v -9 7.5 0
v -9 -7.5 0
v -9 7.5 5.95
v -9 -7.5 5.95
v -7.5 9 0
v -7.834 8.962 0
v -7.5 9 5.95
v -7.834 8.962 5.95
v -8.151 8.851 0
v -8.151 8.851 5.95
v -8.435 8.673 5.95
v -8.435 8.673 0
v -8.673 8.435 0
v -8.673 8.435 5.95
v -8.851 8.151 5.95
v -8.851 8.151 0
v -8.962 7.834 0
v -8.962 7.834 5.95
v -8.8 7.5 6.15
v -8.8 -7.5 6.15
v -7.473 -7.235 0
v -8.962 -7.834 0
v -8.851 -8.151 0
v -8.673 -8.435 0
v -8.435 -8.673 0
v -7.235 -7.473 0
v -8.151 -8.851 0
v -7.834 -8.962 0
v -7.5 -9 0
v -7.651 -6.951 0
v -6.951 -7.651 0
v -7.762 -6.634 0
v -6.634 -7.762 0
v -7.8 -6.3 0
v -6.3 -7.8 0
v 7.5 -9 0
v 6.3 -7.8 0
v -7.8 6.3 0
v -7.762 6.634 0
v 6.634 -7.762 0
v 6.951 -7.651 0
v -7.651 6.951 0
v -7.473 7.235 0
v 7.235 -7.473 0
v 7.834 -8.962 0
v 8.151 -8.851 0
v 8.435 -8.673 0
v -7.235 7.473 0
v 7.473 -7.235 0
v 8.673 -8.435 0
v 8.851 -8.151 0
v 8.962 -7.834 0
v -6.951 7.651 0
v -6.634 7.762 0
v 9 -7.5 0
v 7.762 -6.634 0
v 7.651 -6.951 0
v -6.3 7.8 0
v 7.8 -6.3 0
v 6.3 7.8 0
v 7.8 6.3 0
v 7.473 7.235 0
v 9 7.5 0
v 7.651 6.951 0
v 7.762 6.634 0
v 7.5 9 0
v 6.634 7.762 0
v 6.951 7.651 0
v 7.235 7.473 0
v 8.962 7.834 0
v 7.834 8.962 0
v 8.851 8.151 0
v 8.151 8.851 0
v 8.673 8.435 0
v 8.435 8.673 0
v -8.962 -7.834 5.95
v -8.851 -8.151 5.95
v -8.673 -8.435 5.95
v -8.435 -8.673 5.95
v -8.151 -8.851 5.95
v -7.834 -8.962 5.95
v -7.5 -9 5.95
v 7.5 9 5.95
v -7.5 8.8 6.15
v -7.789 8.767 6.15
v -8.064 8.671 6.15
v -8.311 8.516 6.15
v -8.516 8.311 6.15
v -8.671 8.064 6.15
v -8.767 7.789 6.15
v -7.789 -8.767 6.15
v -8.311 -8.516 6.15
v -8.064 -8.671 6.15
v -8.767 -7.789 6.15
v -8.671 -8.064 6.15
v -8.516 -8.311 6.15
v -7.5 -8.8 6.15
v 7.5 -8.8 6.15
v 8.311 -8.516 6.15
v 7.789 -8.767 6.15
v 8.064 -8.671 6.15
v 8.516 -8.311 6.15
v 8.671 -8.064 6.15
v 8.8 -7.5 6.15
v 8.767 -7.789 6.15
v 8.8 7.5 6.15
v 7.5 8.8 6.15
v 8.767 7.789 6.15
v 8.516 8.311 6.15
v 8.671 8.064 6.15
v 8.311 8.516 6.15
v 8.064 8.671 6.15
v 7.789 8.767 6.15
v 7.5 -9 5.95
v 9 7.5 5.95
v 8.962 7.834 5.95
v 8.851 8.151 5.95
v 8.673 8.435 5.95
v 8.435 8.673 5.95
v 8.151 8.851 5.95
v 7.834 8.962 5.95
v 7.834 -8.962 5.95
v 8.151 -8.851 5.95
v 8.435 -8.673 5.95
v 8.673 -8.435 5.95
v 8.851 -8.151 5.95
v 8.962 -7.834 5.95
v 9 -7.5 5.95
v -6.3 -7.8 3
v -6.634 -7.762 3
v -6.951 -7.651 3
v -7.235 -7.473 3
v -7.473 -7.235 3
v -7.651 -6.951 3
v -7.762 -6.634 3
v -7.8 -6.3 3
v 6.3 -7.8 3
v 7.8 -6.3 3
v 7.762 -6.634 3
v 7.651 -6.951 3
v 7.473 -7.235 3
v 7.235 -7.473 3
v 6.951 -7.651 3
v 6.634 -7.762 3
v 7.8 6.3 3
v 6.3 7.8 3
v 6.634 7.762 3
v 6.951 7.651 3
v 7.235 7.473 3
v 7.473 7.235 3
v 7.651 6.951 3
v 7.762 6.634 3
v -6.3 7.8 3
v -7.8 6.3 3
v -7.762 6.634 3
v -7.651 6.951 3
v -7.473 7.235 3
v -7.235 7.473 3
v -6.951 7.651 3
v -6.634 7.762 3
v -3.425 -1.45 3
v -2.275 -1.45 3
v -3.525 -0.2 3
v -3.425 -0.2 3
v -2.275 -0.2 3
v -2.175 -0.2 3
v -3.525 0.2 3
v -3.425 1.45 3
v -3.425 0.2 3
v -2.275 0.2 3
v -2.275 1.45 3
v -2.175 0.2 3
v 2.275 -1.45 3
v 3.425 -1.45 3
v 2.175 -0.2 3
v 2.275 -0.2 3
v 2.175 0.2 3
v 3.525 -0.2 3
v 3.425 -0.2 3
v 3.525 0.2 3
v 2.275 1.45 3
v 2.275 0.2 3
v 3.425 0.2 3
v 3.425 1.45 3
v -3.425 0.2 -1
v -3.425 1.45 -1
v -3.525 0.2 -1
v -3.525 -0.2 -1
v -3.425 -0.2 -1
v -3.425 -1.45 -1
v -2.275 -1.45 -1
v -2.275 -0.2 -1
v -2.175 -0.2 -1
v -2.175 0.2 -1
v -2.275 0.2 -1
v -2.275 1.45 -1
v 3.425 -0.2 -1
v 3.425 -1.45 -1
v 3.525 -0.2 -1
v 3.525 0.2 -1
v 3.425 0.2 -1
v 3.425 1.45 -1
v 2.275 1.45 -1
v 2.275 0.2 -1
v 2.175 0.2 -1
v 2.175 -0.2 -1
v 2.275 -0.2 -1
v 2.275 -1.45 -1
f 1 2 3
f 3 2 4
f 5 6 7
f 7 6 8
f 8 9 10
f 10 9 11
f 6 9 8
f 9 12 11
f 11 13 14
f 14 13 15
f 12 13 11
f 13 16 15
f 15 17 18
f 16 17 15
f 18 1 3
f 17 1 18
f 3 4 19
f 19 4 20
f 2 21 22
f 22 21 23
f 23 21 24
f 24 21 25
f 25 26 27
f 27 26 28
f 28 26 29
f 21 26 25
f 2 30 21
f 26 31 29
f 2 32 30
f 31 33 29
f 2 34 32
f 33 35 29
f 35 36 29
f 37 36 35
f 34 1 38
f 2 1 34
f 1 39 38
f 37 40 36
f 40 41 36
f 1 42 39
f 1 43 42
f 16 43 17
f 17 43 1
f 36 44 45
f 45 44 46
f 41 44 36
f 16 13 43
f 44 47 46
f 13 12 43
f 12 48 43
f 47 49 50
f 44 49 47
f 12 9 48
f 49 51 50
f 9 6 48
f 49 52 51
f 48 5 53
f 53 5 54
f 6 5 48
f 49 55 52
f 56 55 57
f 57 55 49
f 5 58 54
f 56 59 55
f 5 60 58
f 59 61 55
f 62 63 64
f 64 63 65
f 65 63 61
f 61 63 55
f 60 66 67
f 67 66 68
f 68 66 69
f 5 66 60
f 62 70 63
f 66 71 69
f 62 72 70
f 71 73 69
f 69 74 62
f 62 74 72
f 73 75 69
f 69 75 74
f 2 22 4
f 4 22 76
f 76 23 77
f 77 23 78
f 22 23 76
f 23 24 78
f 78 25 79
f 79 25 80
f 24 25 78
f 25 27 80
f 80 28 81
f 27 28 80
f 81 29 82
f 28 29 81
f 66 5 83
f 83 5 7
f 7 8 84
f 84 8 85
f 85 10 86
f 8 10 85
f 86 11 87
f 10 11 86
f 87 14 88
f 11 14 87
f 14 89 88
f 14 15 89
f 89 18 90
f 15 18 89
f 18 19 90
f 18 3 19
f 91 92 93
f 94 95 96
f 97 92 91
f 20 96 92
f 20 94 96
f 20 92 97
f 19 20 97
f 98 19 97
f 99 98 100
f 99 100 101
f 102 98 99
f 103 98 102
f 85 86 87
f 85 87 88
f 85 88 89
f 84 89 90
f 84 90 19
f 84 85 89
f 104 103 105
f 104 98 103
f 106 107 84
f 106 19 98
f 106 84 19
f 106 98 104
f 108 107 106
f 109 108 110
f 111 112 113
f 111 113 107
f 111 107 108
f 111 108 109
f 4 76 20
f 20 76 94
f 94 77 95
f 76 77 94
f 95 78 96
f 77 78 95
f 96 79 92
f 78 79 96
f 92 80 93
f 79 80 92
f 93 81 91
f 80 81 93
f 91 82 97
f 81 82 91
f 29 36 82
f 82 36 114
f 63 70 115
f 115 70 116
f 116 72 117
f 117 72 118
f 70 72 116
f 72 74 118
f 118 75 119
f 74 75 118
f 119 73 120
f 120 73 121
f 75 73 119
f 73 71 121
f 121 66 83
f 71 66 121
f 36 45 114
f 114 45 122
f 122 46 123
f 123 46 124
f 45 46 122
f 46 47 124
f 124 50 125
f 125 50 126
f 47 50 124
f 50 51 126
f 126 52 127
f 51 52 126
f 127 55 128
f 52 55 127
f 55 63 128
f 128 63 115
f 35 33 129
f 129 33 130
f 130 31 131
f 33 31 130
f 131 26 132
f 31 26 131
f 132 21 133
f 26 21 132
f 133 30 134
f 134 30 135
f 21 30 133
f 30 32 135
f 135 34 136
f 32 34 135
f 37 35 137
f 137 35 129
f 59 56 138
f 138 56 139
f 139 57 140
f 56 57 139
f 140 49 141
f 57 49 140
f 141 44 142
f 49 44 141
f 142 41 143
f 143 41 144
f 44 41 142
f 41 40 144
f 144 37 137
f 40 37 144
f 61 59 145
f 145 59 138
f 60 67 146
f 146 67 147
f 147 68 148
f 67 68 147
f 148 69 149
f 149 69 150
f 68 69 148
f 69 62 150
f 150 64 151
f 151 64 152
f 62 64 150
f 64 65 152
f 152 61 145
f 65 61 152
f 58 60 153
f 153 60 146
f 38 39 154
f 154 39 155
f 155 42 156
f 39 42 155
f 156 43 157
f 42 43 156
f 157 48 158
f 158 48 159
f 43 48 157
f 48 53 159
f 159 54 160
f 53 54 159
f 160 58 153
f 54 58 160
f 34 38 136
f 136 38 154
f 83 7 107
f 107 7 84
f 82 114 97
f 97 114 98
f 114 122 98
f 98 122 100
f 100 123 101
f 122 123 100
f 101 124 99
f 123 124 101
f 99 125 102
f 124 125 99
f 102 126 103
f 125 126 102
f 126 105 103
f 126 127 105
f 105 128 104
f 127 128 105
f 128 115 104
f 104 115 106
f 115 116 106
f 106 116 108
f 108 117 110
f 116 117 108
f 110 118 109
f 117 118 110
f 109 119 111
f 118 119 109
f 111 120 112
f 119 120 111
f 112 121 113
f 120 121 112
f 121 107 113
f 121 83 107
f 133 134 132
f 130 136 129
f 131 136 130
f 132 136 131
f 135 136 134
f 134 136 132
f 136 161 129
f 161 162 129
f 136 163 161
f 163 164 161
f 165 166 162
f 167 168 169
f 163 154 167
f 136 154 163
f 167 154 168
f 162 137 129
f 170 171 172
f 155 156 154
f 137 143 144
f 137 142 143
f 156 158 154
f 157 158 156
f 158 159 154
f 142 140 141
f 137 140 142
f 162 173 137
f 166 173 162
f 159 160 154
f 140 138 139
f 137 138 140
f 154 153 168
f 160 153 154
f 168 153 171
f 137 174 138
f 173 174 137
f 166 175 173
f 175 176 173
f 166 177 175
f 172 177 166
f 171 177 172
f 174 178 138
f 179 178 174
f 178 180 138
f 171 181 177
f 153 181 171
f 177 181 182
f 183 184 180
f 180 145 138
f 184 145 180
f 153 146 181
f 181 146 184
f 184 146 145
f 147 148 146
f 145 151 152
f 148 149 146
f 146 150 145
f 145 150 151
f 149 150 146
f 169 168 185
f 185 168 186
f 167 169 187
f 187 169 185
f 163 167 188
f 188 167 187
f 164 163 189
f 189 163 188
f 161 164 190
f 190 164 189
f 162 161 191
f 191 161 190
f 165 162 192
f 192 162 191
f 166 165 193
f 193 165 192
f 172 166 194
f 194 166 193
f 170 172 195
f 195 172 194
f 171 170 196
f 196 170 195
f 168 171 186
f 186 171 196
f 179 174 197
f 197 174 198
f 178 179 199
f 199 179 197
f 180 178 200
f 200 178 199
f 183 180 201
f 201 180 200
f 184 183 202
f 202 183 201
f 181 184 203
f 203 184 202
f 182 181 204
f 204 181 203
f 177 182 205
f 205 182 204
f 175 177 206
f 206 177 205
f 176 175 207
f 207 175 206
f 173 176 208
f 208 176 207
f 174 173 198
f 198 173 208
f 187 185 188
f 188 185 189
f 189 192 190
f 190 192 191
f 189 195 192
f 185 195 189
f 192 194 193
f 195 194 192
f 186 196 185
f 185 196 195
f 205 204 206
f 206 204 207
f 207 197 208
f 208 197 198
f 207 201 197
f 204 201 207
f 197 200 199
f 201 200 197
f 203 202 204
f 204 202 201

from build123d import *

# Parameters (mm, degrees)
PAD_DEPTH    = 6.15
POCKET_DEPTH = 3
PAD001_DEPTH = 4
CHAMFER_SIZE = 0.2


with BuildPart() as part:
    # Sketch → Pad (new body)
    with BuildSketch(Plane.XY):
        with BuildLine():
            Line((-9, 7.5), (-9, -7.5))
            ThreePointArc((-9, -7.5), (-8.56066, -8.56066), (-7.5, -9))
            Line((-7.5, -9), (7.5, -9))
            ThreePointArc((7.5, -9), (8.56066, -8.56066), (9, -7.5))
            Line((9, -7.5), (9, 7.5))
            ThreePointArc((9, 7.5), (8.56066, 8.56066), (7.5, 9))
            Line((7.5, 9), (-7.5, 9))
            ThreePointArc((-7.5, 9), (-8.56066, 8.56066), (-9, 7.5))
        make_face()
    extrude(amount=PAD_DEPTH)

    # Sketch001 (on Face9 of Pad) → Pocket (cut)
    with BuildSketch(Plane(origin=(0, 0, 0), x_dir=(1, 0, 0), z_dir=(0, 0, -1))):
        with BuildLine():
            Line((-7.8, 6.3), (-7.8, -6.3))
            ThreePointArc((-7.8, -6.3), (-7.36066, -7.36066), (-6.3, -7.8))
            Line((-6.3, -7.8), (6.3, -7.8))
            ThreePointArc((6.3, -7.8), (7.36066, -7.36066), (7.8, -6.3))
            Line((7.8, -6.3), (7.8, 6.3))
            ThreePointArc((7.8, 6.3), (7.36066, 7.36066), (6.3, 7.8))
            Line((6.3, 7.8), (-6.3, 7.8))
            ThreePointArc((-6.3, 7.8), (-7.36066, 7.36066), (-7.8, 6.3))
        make_face()
    extrude(amount=-POCKET_DEPTH, mode=Mode.SUBTRACT)

    # Sketch002 (on Face19 of Pocket) → Pad001 (join)
    with BuildSketch(Plane(origin=(0, 0, 3), x_dir=(1, 0, 0), z_dir=(0, 0, -1))):
        Polygon((-3.425, -1.45), (-2.275, -1.45), (-2.275, -0.2), (-2.175, -0.2), (-2.175, 0.2), (-2.275, 0.2), (-2.275, 1.45), (-3.425, 1.45), (-3.425, 0.2), (-3.525, 0.2), (-3.525, -0.2), (-3.425, -0.2), align=None)
        Polygon((3.425, 1.45), (2.275, 1.45), (2.275, 0.2), (2.175, 0.2), (2.175, -0.2), (2.275, -0.2), (2.275, -1.45), (3.425, -1.45), (3.425, -0.2), (3.525, -0.2), (3.525, 0.2), (3.425, 0.2), align=None)
    extrude(amount=PAD001_DEPTH)

    # Chamfer
    chamfer_edges = [part.edges().sort_by_distance(p)[0] for p in [
        (0, -9, 6.15),
    ]]
    chamfer(chamfer_edges, length=CHAMFER_SIZE)


solid = part.part
